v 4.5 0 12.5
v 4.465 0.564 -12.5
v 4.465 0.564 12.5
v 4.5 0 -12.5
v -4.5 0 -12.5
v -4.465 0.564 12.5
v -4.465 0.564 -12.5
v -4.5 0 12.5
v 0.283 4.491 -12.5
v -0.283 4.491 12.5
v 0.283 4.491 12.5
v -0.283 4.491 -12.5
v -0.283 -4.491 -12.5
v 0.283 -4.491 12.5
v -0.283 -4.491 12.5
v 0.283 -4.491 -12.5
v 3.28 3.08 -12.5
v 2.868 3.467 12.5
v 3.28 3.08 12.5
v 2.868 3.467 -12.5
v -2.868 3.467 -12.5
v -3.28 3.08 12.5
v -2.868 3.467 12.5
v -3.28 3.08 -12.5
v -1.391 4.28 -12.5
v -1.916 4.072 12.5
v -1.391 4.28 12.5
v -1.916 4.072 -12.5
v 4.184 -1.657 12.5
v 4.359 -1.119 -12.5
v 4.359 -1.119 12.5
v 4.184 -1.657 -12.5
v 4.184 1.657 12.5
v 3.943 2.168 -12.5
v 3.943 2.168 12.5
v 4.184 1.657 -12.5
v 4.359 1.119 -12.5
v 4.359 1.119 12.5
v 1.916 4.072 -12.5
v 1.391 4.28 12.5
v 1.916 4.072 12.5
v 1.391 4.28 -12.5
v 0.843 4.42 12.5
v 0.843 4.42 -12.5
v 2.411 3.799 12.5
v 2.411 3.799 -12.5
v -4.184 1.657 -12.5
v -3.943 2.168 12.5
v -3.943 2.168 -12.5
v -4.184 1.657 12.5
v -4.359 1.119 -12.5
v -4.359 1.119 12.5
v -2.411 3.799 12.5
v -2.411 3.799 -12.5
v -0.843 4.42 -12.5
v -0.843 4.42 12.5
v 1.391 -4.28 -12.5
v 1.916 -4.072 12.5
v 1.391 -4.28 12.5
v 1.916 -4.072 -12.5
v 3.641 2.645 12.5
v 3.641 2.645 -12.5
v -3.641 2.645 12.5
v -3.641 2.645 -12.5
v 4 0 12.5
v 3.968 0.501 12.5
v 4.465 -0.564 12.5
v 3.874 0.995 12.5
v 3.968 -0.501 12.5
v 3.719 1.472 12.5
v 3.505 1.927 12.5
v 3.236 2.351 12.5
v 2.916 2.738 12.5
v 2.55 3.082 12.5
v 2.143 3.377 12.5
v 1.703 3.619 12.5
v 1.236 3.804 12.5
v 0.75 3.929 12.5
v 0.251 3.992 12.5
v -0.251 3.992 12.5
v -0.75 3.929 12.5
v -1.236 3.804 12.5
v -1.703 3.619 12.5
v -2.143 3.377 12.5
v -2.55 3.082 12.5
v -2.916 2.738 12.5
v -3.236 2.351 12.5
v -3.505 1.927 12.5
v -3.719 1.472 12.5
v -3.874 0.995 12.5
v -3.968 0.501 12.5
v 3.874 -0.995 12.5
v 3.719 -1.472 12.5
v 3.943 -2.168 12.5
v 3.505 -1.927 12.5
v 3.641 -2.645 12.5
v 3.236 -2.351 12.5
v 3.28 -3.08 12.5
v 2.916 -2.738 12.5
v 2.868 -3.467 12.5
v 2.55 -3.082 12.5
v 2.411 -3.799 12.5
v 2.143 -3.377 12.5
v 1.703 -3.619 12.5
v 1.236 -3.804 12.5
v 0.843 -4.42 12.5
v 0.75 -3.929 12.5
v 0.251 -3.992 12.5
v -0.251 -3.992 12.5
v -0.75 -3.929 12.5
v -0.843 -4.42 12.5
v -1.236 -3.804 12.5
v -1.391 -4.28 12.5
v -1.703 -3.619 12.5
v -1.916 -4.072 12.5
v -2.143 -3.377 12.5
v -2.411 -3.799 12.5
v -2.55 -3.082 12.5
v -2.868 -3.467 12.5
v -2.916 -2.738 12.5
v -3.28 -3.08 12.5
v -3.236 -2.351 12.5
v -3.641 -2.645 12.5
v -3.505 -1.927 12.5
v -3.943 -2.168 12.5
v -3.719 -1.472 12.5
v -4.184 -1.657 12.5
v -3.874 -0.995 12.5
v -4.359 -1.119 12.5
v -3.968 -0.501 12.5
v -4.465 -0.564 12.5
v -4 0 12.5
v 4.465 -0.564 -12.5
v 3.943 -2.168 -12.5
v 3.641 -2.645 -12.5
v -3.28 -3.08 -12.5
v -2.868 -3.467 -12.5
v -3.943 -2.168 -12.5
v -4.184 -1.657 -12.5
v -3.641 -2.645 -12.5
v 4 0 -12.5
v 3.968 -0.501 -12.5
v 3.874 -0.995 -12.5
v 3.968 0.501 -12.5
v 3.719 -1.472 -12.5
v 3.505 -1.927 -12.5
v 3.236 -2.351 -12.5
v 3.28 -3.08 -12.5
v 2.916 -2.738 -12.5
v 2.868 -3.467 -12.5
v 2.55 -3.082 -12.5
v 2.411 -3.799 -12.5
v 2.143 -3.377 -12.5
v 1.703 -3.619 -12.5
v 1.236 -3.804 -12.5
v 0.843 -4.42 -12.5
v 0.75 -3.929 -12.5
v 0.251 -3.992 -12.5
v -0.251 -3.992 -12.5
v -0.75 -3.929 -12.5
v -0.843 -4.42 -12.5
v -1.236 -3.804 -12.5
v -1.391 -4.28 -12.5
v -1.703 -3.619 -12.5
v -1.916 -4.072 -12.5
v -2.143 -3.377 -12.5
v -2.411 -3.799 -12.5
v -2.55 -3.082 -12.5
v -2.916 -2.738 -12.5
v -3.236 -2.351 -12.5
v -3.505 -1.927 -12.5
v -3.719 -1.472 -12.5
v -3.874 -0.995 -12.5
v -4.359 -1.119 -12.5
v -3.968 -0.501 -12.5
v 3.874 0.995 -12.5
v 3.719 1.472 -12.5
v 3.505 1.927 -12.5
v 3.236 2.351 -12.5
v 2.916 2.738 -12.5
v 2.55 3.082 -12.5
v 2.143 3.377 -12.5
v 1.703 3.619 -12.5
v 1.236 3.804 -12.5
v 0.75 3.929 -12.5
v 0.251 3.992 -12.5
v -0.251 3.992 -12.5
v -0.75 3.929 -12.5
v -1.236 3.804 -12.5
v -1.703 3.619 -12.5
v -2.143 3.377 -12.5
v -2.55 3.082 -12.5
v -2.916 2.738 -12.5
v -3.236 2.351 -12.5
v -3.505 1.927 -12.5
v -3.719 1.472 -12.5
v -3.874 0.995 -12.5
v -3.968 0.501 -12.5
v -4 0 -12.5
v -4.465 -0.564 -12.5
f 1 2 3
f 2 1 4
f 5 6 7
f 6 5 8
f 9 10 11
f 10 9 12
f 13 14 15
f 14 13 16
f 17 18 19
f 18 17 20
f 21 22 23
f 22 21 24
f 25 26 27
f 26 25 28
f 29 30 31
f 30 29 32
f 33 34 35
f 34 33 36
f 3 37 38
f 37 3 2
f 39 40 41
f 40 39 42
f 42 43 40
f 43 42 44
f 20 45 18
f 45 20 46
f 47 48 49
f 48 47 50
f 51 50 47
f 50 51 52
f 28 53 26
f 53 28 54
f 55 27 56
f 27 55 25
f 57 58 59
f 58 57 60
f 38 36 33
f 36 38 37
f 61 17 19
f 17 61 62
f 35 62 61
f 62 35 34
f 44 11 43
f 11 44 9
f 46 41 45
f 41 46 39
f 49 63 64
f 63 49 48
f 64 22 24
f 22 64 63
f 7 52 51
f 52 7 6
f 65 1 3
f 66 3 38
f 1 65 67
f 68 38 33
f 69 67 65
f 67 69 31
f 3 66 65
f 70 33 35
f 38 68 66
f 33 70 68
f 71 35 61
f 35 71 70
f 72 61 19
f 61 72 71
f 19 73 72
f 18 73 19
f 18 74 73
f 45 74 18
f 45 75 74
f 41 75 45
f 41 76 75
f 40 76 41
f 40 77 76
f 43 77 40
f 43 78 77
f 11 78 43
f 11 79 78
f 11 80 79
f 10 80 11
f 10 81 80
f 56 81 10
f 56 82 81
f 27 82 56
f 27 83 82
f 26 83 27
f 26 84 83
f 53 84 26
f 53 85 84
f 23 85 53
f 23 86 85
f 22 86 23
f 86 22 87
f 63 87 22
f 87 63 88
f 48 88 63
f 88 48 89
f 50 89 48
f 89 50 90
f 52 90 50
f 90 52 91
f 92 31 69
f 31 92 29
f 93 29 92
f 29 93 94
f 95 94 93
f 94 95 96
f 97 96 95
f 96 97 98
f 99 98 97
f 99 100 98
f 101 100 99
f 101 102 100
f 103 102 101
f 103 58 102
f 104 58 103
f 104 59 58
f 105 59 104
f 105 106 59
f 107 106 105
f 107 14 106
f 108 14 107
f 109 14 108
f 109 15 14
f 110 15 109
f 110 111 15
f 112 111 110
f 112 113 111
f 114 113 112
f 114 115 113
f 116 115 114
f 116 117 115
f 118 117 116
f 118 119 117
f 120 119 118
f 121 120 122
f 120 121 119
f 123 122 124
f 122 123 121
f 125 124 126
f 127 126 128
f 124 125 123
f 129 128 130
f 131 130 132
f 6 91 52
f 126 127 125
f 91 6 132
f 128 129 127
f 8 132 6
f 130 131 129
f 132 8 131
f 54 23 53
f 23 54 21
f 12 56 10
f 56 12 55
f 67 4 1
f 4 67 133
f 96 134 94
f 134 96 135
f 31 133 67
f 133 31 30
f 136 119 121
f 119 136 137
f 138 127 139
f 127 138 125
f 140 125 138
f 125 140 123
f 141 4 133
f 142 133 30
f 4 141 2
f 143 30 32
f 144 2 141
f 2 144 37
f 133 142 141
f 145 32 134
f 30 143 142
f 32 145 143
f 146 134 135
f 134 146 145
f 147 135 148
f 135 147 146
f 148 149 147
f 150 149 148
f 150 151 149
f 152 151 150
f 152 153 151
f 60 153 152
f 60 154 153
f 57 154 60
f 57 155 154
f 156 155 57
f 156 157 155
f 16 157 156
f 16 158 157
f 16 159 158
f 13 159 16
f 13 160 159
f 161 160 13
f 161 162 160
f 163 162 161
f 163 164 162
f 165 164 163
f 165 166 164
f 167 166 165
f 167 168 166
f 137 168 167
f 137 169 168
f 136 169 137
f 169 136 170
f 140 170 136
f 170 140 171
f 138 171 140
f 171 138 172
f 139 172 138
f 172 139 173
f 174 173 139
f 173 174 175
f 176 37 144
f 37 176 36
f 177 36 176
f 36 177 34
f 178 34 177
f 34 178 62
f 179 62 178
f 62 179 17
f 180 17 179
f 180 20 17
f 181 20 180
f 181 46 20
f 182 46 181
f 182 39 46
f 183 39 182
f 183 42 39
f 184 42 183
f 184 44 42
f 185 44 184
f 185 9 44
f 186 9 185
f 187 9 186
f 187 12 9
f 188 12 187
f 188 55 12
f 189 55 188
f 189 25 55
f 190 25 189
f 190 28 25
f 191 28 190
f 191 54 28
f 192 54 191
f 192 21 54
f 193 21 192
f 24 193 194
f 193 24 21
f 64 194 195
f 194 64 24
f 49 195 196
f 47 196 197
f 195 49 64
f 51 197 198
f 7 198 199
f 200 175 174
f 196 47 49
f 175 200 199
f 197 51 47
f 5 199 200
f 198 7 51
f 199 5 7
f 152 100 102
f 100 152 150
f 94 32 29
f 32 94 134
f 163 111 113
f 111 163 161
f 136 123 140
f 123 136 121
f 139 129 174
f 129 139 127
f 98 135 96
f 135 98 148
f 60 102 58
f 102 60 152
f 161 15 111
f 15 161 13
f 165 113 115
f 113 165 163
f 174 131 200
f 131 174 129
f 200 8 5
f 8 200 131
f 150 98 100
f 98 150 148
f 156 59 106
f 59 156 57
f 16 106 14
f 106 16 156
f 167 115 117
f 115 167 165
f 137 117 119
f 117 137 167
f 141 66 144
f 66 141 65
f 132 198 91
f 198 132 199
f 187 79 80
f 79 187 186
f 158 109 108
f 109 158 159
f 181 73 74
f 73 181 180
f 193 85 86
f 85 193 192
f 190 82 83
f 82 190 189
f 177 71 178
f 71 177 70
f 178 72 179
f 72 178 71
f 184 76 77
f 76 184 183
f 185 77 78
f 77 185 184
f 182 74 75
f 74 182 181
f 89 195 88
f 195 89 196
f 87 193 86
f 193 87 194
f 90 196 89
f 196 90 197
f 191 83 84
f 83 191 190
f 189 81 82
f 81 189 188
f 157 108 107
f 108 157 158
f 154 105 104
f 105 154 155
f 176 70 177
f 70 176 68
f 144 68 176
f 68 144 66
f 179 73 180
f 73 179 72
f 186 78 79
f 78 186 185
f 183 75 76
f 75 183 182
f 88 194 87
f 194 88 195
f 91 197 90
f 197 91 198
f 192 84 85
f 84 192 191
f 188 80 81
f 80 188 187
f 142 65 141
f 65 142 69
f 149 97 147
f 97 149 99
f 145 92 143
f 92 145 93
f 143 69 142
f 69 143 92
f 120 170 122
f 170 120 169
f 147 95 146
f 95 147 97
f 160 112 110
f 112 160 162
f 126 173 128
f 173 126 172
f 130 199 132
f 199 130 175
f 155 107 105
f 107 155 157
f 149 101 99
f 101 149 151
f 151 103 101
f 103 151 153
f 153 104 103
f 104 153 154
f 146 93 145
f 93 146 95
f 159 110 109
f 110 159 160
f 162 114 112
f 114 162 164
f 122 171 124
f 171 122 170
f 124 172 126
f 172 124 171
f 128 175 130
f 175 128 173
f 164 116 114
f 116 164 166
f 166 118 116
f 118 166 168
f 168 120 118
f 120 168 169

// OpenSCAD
$fn = 50;


difference() {
	union() {
		translate(v = [0, 0, -12.5000000000]) {
			cylinder(h = 25, r = 4.5000000000);
		}
	}
	union() {
		translate(v = [0, 0, -100.0000000000]) {
			cylinder(h = 200, r = 4);
		}
	}
}
